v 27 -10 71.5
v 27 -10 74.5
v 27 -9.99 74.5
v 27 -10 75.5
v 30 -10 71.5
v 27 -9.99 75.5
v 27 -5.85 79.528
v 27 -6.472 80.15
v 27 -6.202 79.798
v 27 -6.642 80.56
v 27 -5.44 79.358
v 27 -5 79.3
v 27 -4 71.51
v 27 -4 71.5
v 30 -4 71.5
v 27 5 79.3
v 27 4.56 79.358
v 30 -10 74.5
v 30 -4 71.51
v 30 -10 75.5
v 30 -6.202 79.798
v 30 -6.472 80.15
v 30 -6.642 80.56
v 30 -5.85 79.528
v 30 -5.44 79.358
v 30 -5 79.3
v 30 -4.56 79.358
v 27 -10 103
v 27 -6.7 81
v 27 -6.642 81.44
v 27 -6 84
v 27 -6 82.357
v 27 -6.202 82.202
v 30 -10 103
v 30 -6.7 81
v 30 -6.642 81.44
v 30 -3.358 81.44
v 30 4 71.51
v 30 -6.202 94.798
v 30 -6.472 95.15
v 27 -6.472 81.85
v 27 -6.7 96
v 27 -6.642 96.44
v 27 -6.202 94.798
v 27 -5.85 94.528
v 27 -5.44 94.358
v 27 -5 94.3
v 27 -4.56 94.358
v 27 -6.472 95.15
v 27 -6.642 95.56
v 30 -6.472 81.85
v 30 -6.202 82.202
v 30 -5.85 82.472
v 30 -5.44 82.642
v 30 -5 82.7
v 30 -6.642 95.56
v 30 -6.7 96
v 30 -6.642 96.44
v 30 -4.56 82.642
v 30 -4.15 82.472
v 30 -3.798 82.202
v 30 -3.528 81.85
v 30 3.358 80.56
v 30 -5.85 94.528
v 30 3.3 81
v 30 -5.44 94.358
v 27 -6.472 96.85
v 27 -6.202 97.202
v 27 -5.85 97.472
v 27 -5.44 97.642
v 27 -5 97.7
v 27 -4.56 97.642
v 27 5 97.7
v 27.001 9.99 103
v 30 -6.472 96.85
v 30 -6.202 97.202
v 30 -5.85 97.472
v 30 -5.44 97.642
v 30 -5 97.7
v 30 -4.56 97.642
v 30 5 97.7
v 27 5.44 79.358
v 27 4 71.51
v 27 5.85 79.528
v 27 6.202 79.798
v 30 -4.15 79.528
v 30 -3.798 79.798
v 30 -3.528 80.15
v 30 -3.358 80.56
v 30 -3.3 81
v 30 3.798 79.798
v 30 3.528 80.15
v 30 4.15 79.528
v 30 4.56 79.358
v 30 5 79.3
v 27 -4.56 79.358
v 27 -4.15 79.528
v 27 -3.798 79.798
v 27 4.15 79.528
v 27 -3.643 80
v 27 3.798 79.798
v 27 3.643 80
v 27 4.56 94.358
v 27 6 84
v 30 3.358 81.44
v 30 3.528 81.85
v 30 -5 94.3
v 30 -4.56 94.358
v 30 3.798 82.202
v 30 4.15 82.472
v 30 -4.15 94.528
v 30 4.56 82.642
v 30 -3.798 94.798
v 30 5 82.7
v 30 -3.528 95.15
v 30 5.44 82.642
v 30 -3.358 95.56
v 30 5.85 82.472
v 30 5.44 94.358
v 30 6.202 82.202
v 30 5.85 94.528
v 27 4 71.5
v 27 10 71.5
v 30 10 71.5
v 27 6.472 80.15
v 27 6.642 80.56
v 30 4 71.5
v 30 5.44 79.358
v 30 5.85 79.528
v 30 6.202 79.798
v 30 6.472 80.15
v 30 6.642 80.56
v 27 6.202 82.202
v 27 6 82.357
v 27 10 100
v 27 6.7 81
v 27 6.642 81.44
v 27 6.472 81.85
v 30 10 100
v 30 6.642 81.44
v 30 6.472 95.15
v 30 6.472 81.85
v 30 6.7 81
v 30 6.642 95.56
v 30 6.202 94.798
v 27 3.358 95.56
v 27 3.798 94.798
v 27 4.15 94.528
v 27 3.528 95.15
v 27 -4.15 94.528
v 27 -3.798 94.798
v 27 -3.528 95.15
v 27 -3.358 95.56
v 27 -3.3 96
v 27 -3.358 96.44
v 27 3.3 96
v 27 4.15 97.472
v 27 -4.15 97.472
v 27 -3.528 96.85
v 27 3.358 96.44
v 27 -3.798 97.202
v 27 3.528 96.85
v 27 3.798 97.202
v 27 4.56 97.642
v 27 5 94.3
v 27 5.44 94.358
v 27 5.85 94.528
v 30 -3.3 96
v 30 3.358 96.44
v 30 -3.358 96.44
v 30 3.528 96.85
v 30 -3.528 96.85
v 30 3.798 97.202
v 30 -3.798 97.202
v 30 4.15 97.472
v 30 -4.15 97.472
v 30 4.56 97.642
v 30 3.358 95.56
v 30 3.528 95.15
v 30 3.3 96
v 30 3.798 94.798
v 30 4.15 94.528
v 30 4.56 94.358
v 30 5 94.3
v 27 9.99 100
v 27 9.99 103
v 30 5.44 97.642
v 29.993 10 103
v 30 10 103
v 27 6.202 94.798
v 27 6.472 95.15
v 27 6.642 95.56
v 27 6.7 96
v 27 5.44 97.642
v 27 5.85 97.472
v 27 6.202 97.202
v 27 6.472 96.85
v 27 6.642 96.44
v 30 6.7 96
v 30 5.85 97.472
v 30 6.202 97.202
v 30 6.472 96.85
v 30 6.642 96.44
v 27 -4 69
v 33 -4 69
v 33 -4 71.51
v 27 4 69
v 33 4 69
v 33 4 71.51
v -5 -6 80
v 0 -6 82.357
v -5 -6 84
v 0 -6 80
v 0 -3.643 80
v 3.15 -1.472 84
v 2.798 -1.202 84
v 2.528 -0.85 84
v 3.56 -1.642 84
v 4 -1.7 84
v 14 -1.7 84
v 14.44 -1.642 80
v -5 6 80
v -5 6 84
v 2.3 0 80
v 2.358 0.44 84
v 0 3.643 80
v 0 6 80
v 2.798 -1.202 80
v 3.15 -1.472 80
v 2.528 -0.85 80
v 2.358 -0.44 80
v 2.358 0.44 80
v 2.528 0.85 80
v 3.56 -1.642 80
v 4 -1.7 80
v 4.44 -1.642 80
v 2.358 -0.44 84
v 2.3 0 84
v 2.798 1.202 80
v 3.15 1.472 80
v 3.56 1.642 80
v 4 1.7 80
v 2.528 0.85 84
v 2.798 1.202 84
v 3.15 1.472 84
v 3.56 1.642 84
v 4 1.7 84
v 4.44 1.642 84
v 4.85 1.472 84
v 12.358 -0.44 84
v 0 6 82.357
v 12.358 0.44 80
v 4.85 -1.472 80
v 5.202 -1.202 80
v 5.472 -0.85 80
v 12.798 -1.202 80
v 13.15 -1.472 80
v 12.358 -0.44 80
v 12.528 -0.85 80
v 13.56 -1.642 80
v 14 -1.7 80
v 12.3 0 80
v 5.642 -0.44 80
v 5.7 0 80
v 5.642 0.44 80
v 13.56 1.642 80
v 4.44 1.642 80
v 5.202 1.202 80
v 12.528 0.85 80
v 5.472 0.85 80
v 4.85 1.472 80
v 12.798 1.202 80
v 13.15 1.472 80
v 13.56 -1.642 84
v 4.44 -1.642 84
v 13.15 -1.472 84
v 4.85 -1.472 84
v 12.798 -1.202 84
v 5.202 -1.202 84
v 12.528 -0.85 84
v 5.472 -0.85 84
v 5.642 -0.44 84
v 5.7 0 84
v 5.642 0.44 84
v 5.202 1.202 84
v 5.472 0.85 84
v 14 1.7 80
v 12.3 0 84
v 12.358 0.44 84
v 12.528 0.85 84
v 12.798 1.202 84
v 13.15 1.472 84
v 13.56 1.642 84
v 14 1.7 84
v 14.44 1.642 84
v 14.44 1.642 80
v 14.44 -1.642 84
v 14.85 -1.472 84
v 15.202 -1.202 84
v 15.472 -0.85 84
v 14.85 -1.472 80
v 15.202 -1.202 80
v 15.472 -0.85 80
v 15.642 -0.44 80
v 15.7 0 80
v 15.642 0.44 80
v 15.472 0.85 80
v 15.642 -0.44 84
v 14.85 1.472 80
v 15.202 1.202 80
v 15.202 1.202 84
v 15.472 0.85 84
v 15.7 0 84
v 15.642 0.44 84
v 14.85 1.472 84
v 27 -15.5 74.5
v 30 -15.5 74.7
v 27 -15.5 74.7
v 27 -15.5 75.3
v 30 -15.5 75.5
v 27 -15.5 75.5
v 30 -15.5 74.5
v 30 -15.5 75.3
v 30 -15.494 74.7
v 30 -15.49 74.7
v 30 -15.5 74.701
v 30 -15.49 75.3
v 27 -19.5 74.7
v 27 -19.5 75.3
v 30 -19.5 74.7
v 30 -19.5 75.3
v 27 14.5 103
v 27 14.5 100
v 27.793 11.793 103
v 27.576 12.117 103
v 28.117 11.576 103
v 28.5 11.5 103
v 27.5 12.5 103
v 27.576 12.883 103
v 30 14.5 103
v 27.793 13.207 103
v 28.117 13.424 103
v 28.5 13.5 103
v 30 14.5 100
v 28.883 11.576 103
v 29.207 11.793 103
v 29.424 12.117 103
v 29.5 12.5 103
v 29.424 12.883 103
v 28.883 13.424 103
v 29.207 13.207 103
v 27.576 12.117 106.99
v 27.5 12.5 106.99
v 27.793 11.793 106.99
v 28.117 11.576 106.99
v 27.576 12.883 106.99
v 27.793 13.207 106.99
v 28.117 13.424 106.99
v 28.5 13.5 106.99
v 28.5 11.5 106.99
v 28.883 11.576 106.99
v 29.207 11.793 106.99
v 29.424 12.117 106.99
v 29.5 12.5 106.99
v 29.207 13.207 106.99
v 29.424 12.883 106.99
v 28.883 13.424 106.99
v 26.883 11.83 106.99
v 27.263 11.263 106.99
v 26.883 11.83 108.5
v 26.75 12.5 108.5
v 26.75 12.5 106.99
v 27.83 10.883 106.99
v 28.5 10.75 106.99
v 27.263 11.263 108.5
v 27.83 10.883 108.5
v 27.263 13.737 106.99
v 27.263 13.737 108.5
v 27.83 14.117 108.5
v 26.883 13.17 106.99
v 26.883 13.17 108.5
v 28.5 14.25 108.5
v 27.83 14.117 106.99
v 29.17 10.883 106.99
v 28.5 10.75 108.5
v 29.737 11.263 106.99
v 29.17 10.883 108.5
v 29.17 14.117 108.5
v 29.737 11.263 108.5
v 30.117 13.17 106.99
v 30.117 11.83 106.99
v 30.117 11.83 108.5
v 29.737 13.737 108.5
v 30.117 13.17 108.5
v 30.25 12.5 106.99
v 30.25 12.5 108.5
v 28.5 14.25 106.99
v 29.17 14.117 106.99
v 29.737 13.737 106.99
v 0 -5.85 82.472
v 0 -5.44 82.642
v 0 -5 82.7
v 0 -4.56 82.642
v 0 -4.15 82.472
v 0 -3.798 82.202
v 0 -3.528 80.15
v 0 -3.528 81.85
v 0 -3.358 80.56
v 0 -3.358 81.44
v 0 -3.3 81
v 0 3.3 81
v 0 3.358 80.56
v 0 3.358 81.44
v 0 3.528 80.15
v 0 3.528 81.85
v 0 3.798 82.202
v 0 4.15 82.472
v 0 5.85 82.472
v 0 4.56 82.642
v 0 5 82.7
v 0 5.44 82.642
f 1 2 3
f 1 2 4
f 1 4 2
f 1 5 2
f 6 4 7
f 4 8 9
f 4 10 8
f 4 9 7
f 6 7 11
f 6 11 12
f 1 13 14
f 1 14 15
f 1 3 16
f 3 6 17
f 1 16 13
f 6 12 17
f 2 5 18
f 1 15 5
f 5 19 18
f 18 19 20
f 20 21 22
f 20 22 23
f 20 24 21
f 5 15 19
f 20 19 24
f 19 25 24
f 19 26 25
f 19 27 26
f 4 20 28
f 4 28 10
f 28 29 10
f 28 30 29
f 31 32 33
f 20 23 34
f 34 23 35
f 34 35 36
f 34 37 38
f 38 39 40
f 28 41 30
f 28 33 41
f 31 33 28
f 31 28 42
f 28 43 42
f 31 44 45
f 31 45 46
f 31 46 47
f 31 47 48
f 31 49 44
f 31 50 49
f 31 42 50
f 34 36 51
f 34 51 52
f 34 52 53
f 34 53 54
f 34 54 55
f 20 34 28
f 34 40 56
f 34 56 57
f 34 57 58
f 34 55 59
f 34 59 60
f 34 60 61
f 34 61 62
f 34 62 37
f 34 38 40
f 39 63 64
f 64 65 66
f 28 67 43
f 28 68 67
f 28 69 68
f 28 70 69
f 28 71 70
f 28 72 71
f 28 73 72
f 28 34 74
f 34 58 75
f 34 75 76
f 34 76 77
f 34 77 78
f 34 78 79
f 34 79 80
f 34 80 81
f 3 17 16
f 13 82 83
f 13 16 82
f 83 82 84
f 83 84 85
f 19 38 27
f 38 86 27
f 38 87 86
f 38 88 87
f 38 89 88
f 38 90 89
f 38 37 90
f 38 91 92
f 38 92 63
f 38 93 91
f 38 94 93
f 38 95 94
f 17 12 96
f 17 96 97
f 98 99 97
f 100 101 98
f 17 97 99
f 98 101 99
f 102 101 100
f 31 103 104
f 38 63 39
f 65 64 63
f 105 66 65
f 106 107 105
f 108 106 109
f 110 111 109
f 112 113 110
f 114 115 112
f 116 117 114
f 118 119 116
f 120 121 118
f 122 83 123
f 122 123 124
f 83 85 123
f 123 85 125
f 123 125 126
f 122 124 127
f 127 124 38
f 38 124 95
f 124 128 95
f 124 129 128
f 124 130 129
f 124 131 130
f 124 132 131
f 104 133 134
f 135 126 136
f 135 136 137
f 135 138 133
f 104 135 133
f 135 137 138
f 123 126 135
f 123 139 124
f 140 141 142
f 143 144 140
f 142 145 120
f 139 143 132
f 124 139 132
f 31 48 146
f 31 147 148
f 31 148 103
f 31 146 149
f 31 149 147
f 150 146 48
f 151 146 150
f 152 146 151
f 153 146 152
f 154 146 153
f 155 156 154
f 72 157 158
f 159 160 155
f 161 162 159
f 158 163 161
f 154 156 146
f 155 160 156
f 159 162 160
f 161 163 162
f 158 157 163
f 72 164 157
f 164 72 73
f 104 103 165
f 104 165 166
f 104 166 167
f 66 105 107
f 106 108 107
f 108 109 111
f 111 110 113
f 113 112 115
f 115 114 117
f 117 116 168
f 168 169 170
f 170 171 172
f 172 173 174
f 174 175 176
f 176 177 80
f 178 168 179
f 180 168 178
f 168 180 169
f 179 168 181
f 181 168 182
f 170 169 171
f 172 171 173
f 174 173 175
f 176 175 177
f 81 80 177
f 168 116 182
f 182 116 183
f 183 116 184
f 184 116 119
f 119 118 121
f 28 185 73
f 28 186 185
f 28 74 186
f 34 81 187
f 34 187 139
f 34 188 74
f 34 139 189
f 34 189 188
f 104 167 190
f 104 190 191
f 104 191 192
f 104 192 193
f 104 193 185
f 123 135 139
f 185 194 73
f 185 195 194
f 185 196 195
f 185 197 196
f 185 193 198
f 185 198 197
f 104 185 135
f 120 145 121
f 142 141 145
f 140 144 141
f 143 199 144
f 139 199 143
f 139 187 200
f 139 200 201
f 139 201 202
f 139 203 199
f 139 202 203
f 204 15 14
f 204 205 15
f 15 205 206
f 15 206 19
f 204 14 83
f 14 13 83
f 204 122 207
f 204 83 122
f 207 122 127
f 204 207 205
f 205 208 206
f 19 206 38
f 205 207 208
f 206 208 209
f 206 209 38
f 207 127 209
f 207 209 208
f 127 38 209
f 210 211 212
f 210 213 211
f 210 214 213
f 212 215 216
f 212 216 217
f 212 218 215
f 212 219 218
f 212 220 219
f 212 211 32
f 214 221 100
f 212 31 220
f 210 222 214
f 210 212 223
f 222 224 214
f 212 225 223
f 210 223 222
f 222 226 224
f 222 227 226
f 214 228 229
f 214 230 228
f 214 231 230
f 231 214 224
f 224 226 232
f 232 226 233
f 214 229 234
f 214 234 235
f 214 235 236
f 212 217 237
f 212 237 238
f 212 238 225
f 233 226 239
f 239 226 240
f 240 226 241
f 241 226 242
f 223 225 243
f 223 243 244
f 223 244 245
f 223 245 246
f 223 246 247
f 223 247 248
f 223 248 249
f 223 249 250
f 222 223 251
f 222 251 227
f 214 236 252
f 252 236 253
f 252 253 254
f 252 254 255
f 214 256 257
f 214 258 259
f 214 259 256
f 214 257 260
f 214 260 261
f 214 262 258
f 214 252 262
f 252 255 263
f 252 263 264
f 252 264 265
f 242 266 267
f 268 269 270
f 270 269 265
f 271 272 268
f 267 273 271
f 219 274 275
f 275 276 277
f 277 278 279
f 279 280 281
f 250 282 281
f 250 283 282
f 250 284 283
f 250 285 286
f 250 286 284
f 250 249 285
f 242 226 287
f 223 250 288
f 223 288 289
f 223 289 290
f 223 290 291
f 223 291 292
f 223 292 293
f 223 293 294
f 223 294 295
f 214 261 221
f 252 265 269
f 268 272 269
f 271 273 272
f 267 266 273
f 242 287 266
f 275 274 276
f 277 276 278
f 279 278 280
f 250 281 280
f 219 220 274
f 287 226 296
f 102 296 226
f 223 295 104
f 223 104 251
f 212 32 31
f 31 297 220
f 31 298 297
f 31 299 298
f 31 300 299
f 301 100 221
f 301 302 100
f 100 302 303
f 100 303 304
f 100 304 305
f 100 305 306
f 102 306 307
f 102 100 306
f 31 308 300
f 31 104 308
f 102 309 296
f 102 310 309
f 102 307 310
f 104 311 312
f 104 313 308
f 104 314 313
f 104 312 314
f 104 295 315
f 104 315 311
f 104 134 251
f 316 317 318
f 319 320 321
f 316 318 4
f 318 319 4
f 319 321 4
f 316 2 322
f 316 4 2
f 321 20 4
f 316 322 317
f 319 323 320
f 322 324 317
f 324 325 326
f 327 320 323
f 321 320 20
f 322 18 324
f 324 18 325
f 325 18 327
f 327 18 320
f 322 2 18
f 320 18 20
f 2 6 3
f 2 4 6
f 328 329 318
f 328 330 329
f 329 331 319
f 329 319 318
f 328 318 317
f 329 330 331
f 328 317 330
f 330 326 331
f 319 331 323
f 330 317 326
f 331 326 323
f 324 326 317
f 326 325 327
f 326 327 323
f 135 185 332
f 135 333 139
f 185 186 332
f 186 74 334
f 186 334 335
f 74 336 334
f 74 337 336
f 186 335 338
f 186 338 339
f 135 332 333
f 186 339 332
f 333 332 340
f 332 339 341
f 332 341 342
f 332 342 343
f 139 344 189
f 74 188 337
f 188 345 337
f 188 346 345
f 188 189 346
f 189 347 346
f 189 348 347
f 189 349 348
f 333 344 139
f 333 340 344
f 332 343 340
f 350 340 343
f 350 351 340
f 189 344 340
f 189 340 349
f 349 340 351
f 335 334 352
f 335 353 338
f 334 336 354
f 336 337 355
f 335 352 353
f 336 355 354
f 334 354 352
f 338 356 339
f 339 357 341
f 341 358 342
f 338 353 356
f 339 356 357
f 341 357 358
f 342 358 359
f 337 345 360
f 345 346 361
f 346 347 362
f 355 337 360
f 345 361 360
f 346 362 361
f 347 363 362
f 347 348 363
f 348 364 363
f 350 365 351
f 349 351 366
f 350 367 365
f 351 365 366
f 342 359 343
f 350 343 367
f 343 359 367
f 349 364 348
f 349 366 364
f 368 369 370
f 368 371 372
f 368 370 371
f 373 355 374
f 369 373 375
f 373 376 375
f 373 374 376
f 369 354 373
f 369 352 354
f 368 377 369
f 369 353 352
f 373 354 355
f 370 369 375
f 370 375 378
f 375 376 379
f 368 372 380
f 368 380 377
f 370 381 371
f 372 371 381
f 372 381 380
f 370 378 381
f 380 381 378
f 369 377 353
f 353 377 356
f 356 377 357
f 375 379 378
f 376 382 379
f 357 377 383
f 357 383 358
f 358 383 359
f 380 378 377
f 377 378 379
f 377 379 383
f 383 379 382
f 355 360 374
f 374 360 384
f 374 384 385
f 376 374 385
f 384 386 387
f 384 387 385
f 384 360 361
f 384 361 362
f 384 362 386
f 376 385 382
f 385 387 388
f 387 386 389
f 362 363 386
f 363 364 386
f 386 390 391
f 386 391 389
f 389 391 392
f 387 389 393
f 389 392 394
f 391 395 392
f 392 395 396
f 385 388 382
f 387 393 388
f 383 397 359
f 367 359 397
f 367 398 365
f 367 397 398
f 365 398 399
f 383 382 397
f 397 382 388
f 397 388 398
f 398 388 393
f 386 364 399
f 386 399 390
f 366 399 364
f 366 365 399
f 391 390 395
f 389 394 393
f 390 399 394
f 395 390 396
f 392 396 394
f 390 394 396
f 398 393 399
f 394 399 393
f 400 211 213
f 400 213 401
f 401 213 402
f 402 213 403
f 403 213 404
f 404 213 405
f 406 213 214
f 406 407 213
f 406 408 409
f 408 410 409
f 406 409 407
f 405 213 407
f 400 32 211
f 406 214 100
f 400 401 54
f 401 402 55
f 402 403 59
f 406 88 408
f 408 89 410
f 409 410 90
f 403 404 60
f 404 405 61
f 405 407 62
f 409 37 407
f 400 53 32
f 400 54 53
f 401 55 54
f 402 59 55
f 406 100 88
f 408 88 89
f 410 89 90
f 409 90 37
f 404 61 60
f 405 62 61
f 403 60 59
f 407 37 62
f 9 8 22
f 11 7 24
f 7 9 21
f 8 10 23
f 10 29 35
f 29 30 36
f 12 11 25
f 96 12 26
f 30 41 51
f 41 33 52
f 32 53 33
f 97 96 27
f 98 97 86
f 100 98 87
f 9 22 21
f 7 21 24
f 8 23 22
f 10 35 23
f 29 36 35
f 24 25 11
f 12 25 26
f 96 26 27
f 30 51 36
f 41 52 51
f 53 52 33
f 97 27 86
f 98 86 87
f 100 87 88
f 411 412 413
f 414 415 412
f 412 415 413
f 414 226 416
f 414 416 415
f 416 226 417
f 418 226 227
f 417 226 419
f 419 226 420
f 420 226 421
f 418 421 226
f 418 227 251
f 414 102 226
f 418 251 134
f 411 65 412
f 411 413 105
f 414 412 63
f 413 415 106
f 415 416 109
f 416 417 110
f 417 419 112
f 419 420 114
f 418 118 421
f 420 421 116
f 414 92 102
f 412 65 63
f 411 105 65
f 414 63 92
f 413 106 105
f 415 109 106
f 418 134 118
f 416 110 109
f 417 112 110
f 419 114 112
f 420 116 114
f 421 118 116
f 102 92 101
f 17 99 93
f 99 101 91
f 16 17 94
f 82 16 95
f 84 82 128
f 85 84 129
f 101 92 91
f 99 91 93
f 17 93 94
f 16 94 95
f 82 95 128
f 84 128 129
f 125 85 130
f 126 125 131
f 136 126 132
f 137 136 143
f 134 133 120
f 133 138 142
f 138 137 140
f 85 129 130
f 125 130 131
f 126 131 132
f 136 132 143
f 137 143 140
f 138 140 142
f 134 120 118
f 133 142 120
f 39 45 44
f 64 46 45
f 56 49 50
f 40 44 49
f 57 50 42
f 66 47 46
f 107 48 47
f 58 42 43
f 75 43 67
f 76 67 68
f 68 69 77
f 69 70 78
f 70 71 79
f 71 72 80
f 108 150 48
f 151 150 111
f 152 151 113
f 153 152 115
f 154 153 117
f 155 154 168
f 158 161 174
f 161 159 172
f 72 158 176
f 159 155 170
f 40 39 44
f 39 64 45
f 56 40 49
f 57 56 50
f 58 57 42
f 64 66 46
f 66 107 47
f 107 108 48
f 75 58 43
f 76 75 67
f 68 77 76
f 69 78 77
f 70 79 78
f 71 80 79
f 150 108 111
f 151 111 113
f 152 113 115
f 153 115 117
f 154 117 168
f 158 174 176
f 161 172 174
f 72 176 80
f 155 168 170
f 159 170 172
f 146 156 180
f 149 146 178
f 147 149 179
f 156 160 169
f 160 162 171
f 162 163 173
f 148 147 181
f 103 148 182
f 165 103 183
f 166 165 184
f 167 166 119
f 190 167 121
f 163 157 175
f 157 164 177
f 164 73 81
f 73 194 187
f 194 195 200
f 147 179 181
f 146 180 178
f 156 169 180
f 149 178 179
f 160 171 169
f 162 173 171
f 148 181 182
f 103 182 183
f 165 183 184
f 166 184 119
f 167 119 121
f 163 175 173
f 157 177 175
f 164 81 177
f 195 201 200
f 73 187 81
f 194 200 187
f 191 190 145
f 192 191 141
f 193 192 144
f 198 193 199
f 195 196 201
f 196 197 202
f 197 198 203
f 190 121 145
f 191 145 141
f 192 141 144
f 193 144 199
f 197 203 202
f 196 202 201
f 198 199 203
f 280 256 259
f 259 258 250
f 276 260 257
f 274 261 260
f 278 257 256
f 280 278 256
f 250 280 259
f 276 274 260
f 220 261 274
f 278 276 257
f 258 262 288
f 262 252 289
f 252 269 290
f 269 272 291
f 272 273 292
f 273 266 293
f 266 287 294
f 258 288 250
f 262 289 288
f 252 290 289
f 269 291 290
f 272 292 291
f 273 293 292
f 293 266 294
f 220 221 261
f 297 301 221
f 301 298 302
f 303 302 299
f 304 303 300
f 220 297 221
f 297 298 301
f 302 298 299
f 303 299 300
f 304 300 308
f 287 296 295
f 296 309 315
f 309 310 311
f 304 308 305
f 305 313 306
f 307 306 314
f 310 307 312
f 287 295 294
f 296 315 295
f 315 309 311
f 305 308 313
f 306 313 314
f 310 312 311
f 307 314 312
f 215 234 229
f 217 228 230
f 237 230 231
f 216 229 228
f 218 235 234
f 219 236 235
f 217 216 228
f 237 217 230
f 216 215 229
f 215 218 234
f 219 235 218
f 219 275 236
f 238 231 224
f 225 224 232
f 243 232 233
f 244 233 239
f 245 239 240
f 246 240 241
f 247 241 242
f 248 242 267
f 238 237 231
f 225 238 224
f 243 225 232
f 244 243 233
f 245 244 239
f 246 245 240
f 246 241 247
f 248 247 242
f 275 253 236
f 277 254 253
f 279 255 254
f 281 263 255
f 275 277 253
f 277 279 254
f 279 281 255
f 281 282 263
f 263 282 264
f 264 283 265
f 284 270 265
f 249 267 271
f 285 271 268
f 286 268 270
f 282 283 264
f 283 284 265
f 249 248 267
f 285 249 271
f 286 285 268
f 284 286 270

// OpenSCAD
// =====================================================================
//  p26_carriage_riser.scad - P26 carriage riser (L-bracket) with foot tab, pointer fin and trim hook
//  PROJECT SCRATCH · 05-engineering/cad/frame · units: mm · frame: global (section 2)
//  Sources: mechanical.md section 6.2 (20 x 34 x 3 plate on the MGN9C face at X 30, 4 x M3 x 6 on the 15 x 10
//  pattern [VERIFY]; arm 32 x 12 x 4 back over the palm to the upper seat), 6.3 (foot tab on the down-stop
//  thumbscrew tip at X 29 / Z 69), 6.4 (pointer fin, 0.6 edge 1 mm from the scale), 6.7 (trim hook), 7.4, 11 P26.
//  Plate Z 71.5..103 (ends at the block top so the carriage, not the plate, meets the up-stop pad).  Arm at
//  Z 80..84 lies on the P47 filler in the P28 pocket; holes at X +14 / +4.  Hook on a +Y ear (clear of P24).
//  Print on its side.
// =====================================================================
include <lib_sp1.scad>
PL_X0 = 27;  PL_X1 = 30;  PL_Y = 10;  PL_Z0 = 71.5;  PL_Z1 = 103;  CARR_ZC = 88.5;
TAB_X1 = 33;  TAB_Y = 4;  TAB_Z0 = 69;
ARM_X0 = -5;  ARM_Y = 6;  ARM_Z0 = 80;  ARM_Z1 = 84;  ARM_HOLES = [14, 4];
FIN_Y0 = -19.5;  FIN_Y1 = -10;  FIN_Z = 75;  FIN_T = 1.0;  FIN_EDGE_T = 0.6;  FIN_EDGE_L = 4;
HOOK_D = 2;  HOOK_H = 4;  HOOK_HEAD = 3.5;  HOOK_Y = 12.5;
module p26_carriage_riser() difference() {
    union() {
        box(PL_X0, PL_X1, -PL_Y, PL_Y, PL_Z0, PL_Z1);                                            // plate on the block face
        box(PL_X0, TAB_X1, -TAB_Y, TAB_Y, TAB_Z0, PL_Z0 + 0.01);                                 // foot tab (rests on the thumbscrew)
        box(ARM_X0, PL_X0 + 0.01, -ARM_Y, ARM_Y, ARM_Z0, ARM_Z1);                                // arm to the wrist seat
        box(PL_X0, PL_X1, FIN_Y0 + FIN_EDGE_L, FIN_Y1 + 0.01, FIN_Z - FIN_T / 2, FIN_Z + FIN_T / 2);          // pointer fin
        box(PL_X0, PL_X1, FIN_Y0, FIN_Y0 + FIN_EDGE_L + 0.01, FIN_Z - FIN_EDGE_T / 2, FIN_Z + FIN_EDGE_T / 2); // 0.6 edge
        box(PL_X0, PL_X1, PL_Y - 0.01, HOOK_Y + 2, PL_Z1 - 3, PL_Z1);                            // hook ear
        cyl_z(HOOK_D / 2, PL_Z1 - 0.01, PL_Z1 + HOOK_H, (PL_X0 + PL_X1) / 2, HOOK_Y, fn = 16);  // trim-cord hook
        cyl_z(HOOK_HEAD / 2, PL_Z1 + HOOK_H - 0.01, PL_Z1 + HOOK_H + 1.5, (PL_X0 + PL_X1) / 2, HOOK_Y, fn = 16);
    }
    mgn9c_holes_x(PL_X1, 0, CARR_ZC);                                                            // 4 x diam 3.4, 15 x 10 [VERIFY]
    for (x = ARM_HOLES) cyl_z(M3_CLEAR / 2, ARM_Z0 - 1, ARM_Z1 + 1, x, 0, fn = 24);
}
p26_carriage_riser();
